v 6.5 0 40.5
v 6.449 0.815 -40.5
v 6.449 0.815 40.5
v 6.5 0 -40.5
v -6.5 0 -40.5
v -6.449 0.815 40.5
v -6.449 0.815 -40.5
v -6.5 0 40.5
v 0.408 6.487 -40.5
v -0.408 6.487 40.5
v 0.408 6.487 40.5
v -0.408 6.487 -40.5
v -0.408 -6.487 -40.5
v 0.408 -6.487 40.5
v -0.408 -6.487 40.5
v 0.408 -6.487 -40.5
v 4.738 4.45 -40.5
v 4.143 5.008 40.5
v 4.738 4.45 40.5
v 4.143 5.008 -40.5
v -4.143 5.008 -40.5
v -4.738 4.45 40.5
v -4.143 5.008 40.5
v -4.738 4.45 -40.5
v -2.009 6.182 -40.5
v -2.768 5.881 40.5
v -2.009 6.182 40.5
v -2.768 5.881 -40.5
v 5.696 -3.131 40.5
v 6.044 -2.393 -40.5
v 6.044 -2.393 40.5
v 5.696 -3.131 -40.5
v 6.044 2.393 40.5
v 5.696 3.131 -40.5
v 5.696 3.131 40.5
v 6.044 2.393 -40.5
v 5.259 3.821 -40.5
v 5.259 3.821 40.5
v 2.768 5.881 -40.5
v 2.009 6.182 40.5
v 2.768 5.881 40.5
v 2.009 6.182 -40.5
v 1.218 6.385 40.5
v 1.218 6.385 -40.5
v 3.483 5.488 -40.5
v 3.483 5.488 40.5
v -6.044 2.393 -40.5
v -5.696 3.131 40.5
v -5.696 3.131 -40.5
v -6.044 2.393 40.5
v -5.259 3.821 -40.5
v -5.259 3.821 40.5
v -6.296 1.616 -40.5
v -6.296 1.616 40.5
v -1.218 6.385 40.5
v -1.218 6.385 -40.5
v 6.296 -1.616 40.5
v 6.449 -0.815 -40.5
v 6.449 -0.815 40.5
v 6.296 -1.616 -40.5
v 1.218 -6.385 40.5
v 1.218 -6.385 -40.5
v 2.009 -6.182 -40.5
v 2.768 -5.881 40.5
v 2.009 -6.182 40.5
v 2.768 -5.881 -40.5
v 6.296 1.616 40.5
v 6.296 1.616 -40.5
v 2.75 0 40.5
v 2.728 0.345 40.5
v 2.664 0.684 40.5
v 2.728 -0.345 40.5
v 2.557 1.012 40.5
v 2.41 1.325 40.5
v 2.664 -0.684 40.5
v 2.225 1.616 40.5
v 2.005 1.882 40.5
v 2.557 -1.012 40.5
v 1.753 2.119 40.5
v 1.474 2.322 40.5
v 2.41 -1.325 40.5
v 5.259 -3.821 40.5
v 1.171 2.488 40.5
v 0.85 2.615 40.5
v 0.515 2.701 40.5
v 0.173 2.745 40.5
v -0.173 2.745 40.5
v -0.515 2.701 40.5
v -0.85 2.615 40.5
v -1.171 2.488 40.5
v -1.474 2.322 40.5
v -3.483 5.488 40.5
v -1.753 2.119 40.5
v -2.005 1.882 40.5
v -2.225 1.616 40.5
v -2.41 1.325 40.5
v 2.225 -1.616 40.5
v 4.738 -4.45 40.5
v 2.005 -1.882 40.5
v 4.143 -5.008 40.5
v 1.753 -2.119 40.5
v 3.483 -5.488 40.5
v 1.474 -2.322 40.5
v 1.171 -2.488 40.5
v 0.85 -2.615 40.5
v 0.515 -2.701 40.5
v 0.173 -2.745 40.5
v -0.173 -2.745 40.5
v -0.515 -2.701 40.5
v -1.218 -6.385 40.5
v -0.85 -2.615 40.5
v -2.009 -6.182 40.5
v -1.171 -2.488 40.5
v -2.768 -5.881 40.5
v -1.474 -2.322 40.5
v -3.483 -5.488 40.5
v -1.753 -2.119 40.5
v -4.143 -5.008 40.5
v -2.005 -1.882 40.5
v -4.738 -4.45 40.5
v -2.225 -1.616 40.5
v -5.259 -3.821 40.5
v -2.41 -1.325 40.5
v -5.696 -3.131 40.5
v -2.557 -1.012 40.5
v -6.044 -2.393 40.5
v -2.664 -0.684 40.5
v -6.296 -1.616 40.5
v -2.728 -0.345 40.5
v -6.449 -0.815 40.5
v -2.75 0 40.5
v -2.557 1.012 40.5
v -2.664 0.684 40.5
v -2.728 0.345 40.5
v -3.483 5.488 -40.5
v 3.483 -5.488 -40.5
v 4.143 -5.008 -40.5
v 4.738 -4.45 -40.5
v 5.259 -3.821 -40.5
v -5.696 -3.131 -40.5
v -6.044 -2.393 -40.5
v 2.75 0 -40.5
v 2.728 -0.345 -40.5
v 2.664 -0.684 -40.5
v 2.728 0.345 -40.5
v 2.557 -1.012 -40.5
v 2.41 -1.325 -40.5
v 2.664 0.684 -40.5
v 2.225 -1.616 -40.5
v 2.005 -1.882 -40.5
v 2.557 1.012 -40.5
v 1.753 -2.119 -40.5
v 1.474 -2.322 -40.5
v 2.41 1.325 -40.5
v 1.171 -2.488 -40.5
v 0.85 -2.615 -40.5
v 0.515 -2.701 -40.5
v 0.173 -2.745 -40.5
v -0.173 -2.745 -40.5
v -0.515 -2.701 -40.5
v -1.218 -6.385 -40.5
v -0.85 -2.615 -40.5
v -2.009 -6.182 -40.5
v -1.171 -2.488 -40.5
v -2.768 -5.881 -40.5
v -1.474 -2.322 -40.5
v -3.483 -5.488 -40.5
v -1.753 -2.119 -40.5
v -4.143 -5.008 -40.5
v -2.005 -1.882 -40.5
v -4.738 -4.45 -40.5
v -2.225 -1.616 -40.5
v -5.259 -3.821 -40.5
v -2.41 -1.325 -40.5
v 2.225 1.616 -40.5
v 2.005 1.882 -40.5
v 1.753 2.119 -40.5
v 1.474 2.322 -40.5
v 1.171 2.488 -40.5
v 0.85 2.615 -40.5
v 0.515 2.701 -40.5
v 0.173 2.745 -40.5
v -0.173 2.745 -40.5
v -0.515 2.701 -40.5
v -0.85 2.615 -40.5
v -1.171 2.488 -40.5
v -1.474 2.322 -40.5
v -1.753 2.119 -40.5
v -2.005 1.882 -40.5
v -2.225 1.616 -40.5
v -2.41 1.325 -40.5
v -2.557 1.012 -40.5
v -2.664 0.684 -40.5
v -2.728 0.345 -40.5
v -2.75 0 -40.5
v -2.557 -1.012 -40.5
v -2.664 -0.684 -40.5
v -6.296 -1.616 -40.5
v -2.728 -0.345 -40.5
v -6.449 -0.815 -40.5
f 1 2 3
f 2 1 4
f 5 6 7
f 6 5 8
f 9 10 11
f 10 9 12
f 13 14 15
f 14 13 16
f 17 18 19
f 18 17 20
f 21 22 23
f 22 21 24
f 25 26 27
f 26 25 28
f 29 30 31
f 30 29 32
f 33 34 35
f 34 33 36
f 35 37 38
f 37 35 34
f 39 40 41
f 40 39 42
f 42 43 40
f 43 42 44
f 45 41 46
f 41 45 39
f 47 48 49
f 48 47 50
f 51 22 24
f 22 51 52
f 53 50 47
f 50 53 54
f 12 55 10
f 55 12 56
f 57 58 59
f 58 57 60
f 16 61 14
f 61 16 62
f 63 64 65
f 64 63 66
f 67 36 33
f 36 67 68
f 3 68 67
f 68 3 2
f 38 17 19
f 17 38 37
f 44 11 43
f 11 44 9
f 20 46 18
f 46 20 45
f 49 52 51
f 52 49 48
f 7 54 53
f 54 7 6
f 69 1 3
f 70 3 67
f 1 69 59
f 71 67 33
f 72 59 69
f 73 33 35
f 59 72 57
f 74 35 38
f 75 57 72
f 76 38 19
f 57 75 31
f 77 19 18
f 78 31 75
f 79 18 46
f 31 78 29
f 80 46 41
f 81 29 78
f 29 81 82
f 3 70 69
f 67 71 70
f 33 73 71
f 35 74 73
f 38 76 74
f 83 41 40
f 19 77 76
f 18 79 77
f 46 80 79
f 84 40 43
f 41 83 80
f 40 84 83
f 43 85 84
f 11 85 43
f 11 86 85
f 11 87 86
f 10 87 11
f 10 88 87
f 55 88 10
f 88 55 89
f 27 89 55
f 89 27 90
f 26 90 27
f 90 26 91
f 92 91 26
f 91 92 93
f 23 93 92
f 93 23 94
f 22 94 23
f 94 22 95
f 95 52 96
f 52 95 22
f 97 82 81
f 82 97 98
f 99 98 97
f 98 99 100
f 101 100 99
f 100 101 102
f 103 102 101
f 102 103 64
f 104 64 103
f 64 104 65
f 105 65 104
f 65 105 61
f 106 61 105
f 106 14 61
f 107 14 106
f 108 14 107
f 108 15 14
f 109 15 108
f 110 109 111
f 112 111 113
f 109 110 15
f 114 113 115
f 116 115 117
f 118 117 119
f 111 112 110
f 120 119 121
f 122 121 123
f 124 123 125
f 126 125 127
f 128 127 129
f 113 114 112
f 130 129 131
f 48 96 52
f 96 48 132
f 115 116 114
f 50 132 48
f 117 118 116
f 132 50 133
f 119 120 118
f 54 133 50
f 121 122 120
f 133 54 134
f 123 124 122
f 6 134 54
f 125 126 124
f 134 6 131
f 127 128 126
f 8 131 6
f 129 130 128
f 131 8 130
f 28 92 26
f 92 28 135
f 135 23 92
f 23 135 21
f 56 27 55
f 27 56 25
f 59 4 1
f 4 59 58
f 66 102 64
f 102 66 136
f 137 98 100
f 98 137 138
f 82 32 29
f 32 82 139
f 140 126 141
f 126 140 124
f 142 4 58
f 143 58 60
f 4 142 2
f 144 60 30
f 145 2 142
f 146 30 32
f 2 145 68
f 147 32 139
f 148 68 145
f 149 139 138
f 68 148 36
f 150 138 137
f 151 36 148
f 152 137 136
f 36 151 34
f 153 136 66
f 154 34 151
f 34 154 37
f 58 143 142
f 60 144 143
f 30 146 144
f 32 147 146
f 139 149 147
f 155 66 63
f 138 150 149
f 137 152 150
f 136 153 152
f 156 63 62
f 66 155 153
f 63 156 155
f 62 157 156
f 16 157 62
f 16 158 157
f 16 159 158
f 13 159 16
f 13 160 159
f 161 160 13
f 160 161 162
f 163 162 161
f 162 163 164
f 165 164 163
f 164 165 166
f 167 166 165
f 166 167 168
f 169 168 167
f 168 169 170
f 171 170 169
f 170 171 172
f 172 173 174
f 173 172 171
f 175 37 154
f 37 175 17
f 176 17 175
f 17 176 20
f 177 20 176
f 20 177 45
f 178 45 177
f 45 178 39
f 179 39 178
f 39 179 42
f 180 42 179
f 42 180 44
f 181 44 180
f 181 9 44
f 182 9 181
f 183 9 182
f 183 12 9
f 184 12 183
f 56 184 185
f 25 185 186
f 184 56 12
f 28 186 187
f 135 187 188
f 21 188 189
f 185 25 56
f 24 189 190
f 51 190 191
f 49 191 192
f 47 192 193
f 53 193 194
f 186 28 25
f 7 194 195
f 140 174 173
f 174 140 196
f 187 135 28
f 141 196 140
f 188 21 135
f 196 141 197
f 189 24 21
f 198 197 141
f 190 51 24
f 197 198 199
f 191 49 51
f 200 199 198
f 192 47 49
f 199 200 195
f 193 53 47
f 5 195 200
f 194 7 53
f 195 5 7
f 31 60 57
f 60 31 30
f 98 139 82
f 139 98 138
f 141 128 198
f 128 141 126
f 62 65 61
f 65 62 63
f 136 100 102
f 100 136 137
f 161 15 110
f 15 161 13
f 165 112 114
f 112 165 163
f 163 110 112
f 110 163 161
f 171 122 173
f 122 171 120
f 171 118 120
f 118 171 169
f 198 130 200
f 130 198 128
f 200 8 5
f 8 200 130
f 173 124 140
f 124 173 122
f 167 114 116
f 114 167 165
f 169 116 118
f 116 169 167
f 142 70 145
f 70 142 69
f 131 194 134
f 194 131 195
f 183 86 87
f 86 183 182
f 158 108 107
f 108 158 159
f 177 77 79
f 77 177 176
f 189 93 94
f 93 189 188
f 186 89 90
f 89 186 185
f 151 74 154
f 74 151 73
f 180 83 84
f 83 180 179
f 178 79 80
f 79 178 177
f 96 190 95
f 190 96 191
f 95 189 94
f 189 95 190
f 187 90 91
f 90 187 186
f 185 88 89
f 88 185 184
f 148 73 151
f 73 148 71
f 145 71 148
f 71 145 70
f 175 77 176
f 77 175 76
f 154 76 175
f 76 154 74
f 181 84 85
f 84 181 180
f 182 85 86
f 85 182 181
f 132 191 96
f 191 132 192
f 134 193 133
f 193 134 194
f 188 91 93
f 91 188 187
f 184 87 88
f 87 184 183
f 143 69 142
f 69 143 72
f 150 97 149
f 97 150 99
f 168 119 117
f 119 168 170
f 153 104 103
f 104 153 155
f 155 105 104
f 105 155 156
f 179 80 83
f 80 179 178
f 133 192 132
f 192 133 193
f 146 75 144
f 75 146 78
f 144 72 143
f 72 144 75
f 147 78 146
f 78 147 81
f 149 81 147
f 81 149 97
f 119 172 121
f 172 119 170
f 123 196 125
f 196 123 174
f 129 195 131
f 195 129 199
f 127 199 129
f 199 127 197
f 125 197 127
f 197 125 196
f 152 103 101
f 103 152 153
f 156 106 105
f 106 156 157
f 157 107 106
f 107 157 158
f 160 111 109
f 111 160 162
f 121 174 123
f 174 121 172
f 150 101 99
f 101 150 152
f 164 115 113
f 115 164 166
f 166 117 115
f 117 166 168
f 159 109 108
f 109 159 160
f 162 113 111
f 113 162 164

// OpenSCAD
$fn = 50;


difference() {
	union() {
		translate(v = [0, 0, -40.5000000000]) {
			cylinder(h = 81, r = 6.5000000000);
		}
	}
	union() {
		translate(v = [0, 0, -100.0000000000]) {
			cylinder(h = 200, r = 2.7500000000);
		}
	}
}
